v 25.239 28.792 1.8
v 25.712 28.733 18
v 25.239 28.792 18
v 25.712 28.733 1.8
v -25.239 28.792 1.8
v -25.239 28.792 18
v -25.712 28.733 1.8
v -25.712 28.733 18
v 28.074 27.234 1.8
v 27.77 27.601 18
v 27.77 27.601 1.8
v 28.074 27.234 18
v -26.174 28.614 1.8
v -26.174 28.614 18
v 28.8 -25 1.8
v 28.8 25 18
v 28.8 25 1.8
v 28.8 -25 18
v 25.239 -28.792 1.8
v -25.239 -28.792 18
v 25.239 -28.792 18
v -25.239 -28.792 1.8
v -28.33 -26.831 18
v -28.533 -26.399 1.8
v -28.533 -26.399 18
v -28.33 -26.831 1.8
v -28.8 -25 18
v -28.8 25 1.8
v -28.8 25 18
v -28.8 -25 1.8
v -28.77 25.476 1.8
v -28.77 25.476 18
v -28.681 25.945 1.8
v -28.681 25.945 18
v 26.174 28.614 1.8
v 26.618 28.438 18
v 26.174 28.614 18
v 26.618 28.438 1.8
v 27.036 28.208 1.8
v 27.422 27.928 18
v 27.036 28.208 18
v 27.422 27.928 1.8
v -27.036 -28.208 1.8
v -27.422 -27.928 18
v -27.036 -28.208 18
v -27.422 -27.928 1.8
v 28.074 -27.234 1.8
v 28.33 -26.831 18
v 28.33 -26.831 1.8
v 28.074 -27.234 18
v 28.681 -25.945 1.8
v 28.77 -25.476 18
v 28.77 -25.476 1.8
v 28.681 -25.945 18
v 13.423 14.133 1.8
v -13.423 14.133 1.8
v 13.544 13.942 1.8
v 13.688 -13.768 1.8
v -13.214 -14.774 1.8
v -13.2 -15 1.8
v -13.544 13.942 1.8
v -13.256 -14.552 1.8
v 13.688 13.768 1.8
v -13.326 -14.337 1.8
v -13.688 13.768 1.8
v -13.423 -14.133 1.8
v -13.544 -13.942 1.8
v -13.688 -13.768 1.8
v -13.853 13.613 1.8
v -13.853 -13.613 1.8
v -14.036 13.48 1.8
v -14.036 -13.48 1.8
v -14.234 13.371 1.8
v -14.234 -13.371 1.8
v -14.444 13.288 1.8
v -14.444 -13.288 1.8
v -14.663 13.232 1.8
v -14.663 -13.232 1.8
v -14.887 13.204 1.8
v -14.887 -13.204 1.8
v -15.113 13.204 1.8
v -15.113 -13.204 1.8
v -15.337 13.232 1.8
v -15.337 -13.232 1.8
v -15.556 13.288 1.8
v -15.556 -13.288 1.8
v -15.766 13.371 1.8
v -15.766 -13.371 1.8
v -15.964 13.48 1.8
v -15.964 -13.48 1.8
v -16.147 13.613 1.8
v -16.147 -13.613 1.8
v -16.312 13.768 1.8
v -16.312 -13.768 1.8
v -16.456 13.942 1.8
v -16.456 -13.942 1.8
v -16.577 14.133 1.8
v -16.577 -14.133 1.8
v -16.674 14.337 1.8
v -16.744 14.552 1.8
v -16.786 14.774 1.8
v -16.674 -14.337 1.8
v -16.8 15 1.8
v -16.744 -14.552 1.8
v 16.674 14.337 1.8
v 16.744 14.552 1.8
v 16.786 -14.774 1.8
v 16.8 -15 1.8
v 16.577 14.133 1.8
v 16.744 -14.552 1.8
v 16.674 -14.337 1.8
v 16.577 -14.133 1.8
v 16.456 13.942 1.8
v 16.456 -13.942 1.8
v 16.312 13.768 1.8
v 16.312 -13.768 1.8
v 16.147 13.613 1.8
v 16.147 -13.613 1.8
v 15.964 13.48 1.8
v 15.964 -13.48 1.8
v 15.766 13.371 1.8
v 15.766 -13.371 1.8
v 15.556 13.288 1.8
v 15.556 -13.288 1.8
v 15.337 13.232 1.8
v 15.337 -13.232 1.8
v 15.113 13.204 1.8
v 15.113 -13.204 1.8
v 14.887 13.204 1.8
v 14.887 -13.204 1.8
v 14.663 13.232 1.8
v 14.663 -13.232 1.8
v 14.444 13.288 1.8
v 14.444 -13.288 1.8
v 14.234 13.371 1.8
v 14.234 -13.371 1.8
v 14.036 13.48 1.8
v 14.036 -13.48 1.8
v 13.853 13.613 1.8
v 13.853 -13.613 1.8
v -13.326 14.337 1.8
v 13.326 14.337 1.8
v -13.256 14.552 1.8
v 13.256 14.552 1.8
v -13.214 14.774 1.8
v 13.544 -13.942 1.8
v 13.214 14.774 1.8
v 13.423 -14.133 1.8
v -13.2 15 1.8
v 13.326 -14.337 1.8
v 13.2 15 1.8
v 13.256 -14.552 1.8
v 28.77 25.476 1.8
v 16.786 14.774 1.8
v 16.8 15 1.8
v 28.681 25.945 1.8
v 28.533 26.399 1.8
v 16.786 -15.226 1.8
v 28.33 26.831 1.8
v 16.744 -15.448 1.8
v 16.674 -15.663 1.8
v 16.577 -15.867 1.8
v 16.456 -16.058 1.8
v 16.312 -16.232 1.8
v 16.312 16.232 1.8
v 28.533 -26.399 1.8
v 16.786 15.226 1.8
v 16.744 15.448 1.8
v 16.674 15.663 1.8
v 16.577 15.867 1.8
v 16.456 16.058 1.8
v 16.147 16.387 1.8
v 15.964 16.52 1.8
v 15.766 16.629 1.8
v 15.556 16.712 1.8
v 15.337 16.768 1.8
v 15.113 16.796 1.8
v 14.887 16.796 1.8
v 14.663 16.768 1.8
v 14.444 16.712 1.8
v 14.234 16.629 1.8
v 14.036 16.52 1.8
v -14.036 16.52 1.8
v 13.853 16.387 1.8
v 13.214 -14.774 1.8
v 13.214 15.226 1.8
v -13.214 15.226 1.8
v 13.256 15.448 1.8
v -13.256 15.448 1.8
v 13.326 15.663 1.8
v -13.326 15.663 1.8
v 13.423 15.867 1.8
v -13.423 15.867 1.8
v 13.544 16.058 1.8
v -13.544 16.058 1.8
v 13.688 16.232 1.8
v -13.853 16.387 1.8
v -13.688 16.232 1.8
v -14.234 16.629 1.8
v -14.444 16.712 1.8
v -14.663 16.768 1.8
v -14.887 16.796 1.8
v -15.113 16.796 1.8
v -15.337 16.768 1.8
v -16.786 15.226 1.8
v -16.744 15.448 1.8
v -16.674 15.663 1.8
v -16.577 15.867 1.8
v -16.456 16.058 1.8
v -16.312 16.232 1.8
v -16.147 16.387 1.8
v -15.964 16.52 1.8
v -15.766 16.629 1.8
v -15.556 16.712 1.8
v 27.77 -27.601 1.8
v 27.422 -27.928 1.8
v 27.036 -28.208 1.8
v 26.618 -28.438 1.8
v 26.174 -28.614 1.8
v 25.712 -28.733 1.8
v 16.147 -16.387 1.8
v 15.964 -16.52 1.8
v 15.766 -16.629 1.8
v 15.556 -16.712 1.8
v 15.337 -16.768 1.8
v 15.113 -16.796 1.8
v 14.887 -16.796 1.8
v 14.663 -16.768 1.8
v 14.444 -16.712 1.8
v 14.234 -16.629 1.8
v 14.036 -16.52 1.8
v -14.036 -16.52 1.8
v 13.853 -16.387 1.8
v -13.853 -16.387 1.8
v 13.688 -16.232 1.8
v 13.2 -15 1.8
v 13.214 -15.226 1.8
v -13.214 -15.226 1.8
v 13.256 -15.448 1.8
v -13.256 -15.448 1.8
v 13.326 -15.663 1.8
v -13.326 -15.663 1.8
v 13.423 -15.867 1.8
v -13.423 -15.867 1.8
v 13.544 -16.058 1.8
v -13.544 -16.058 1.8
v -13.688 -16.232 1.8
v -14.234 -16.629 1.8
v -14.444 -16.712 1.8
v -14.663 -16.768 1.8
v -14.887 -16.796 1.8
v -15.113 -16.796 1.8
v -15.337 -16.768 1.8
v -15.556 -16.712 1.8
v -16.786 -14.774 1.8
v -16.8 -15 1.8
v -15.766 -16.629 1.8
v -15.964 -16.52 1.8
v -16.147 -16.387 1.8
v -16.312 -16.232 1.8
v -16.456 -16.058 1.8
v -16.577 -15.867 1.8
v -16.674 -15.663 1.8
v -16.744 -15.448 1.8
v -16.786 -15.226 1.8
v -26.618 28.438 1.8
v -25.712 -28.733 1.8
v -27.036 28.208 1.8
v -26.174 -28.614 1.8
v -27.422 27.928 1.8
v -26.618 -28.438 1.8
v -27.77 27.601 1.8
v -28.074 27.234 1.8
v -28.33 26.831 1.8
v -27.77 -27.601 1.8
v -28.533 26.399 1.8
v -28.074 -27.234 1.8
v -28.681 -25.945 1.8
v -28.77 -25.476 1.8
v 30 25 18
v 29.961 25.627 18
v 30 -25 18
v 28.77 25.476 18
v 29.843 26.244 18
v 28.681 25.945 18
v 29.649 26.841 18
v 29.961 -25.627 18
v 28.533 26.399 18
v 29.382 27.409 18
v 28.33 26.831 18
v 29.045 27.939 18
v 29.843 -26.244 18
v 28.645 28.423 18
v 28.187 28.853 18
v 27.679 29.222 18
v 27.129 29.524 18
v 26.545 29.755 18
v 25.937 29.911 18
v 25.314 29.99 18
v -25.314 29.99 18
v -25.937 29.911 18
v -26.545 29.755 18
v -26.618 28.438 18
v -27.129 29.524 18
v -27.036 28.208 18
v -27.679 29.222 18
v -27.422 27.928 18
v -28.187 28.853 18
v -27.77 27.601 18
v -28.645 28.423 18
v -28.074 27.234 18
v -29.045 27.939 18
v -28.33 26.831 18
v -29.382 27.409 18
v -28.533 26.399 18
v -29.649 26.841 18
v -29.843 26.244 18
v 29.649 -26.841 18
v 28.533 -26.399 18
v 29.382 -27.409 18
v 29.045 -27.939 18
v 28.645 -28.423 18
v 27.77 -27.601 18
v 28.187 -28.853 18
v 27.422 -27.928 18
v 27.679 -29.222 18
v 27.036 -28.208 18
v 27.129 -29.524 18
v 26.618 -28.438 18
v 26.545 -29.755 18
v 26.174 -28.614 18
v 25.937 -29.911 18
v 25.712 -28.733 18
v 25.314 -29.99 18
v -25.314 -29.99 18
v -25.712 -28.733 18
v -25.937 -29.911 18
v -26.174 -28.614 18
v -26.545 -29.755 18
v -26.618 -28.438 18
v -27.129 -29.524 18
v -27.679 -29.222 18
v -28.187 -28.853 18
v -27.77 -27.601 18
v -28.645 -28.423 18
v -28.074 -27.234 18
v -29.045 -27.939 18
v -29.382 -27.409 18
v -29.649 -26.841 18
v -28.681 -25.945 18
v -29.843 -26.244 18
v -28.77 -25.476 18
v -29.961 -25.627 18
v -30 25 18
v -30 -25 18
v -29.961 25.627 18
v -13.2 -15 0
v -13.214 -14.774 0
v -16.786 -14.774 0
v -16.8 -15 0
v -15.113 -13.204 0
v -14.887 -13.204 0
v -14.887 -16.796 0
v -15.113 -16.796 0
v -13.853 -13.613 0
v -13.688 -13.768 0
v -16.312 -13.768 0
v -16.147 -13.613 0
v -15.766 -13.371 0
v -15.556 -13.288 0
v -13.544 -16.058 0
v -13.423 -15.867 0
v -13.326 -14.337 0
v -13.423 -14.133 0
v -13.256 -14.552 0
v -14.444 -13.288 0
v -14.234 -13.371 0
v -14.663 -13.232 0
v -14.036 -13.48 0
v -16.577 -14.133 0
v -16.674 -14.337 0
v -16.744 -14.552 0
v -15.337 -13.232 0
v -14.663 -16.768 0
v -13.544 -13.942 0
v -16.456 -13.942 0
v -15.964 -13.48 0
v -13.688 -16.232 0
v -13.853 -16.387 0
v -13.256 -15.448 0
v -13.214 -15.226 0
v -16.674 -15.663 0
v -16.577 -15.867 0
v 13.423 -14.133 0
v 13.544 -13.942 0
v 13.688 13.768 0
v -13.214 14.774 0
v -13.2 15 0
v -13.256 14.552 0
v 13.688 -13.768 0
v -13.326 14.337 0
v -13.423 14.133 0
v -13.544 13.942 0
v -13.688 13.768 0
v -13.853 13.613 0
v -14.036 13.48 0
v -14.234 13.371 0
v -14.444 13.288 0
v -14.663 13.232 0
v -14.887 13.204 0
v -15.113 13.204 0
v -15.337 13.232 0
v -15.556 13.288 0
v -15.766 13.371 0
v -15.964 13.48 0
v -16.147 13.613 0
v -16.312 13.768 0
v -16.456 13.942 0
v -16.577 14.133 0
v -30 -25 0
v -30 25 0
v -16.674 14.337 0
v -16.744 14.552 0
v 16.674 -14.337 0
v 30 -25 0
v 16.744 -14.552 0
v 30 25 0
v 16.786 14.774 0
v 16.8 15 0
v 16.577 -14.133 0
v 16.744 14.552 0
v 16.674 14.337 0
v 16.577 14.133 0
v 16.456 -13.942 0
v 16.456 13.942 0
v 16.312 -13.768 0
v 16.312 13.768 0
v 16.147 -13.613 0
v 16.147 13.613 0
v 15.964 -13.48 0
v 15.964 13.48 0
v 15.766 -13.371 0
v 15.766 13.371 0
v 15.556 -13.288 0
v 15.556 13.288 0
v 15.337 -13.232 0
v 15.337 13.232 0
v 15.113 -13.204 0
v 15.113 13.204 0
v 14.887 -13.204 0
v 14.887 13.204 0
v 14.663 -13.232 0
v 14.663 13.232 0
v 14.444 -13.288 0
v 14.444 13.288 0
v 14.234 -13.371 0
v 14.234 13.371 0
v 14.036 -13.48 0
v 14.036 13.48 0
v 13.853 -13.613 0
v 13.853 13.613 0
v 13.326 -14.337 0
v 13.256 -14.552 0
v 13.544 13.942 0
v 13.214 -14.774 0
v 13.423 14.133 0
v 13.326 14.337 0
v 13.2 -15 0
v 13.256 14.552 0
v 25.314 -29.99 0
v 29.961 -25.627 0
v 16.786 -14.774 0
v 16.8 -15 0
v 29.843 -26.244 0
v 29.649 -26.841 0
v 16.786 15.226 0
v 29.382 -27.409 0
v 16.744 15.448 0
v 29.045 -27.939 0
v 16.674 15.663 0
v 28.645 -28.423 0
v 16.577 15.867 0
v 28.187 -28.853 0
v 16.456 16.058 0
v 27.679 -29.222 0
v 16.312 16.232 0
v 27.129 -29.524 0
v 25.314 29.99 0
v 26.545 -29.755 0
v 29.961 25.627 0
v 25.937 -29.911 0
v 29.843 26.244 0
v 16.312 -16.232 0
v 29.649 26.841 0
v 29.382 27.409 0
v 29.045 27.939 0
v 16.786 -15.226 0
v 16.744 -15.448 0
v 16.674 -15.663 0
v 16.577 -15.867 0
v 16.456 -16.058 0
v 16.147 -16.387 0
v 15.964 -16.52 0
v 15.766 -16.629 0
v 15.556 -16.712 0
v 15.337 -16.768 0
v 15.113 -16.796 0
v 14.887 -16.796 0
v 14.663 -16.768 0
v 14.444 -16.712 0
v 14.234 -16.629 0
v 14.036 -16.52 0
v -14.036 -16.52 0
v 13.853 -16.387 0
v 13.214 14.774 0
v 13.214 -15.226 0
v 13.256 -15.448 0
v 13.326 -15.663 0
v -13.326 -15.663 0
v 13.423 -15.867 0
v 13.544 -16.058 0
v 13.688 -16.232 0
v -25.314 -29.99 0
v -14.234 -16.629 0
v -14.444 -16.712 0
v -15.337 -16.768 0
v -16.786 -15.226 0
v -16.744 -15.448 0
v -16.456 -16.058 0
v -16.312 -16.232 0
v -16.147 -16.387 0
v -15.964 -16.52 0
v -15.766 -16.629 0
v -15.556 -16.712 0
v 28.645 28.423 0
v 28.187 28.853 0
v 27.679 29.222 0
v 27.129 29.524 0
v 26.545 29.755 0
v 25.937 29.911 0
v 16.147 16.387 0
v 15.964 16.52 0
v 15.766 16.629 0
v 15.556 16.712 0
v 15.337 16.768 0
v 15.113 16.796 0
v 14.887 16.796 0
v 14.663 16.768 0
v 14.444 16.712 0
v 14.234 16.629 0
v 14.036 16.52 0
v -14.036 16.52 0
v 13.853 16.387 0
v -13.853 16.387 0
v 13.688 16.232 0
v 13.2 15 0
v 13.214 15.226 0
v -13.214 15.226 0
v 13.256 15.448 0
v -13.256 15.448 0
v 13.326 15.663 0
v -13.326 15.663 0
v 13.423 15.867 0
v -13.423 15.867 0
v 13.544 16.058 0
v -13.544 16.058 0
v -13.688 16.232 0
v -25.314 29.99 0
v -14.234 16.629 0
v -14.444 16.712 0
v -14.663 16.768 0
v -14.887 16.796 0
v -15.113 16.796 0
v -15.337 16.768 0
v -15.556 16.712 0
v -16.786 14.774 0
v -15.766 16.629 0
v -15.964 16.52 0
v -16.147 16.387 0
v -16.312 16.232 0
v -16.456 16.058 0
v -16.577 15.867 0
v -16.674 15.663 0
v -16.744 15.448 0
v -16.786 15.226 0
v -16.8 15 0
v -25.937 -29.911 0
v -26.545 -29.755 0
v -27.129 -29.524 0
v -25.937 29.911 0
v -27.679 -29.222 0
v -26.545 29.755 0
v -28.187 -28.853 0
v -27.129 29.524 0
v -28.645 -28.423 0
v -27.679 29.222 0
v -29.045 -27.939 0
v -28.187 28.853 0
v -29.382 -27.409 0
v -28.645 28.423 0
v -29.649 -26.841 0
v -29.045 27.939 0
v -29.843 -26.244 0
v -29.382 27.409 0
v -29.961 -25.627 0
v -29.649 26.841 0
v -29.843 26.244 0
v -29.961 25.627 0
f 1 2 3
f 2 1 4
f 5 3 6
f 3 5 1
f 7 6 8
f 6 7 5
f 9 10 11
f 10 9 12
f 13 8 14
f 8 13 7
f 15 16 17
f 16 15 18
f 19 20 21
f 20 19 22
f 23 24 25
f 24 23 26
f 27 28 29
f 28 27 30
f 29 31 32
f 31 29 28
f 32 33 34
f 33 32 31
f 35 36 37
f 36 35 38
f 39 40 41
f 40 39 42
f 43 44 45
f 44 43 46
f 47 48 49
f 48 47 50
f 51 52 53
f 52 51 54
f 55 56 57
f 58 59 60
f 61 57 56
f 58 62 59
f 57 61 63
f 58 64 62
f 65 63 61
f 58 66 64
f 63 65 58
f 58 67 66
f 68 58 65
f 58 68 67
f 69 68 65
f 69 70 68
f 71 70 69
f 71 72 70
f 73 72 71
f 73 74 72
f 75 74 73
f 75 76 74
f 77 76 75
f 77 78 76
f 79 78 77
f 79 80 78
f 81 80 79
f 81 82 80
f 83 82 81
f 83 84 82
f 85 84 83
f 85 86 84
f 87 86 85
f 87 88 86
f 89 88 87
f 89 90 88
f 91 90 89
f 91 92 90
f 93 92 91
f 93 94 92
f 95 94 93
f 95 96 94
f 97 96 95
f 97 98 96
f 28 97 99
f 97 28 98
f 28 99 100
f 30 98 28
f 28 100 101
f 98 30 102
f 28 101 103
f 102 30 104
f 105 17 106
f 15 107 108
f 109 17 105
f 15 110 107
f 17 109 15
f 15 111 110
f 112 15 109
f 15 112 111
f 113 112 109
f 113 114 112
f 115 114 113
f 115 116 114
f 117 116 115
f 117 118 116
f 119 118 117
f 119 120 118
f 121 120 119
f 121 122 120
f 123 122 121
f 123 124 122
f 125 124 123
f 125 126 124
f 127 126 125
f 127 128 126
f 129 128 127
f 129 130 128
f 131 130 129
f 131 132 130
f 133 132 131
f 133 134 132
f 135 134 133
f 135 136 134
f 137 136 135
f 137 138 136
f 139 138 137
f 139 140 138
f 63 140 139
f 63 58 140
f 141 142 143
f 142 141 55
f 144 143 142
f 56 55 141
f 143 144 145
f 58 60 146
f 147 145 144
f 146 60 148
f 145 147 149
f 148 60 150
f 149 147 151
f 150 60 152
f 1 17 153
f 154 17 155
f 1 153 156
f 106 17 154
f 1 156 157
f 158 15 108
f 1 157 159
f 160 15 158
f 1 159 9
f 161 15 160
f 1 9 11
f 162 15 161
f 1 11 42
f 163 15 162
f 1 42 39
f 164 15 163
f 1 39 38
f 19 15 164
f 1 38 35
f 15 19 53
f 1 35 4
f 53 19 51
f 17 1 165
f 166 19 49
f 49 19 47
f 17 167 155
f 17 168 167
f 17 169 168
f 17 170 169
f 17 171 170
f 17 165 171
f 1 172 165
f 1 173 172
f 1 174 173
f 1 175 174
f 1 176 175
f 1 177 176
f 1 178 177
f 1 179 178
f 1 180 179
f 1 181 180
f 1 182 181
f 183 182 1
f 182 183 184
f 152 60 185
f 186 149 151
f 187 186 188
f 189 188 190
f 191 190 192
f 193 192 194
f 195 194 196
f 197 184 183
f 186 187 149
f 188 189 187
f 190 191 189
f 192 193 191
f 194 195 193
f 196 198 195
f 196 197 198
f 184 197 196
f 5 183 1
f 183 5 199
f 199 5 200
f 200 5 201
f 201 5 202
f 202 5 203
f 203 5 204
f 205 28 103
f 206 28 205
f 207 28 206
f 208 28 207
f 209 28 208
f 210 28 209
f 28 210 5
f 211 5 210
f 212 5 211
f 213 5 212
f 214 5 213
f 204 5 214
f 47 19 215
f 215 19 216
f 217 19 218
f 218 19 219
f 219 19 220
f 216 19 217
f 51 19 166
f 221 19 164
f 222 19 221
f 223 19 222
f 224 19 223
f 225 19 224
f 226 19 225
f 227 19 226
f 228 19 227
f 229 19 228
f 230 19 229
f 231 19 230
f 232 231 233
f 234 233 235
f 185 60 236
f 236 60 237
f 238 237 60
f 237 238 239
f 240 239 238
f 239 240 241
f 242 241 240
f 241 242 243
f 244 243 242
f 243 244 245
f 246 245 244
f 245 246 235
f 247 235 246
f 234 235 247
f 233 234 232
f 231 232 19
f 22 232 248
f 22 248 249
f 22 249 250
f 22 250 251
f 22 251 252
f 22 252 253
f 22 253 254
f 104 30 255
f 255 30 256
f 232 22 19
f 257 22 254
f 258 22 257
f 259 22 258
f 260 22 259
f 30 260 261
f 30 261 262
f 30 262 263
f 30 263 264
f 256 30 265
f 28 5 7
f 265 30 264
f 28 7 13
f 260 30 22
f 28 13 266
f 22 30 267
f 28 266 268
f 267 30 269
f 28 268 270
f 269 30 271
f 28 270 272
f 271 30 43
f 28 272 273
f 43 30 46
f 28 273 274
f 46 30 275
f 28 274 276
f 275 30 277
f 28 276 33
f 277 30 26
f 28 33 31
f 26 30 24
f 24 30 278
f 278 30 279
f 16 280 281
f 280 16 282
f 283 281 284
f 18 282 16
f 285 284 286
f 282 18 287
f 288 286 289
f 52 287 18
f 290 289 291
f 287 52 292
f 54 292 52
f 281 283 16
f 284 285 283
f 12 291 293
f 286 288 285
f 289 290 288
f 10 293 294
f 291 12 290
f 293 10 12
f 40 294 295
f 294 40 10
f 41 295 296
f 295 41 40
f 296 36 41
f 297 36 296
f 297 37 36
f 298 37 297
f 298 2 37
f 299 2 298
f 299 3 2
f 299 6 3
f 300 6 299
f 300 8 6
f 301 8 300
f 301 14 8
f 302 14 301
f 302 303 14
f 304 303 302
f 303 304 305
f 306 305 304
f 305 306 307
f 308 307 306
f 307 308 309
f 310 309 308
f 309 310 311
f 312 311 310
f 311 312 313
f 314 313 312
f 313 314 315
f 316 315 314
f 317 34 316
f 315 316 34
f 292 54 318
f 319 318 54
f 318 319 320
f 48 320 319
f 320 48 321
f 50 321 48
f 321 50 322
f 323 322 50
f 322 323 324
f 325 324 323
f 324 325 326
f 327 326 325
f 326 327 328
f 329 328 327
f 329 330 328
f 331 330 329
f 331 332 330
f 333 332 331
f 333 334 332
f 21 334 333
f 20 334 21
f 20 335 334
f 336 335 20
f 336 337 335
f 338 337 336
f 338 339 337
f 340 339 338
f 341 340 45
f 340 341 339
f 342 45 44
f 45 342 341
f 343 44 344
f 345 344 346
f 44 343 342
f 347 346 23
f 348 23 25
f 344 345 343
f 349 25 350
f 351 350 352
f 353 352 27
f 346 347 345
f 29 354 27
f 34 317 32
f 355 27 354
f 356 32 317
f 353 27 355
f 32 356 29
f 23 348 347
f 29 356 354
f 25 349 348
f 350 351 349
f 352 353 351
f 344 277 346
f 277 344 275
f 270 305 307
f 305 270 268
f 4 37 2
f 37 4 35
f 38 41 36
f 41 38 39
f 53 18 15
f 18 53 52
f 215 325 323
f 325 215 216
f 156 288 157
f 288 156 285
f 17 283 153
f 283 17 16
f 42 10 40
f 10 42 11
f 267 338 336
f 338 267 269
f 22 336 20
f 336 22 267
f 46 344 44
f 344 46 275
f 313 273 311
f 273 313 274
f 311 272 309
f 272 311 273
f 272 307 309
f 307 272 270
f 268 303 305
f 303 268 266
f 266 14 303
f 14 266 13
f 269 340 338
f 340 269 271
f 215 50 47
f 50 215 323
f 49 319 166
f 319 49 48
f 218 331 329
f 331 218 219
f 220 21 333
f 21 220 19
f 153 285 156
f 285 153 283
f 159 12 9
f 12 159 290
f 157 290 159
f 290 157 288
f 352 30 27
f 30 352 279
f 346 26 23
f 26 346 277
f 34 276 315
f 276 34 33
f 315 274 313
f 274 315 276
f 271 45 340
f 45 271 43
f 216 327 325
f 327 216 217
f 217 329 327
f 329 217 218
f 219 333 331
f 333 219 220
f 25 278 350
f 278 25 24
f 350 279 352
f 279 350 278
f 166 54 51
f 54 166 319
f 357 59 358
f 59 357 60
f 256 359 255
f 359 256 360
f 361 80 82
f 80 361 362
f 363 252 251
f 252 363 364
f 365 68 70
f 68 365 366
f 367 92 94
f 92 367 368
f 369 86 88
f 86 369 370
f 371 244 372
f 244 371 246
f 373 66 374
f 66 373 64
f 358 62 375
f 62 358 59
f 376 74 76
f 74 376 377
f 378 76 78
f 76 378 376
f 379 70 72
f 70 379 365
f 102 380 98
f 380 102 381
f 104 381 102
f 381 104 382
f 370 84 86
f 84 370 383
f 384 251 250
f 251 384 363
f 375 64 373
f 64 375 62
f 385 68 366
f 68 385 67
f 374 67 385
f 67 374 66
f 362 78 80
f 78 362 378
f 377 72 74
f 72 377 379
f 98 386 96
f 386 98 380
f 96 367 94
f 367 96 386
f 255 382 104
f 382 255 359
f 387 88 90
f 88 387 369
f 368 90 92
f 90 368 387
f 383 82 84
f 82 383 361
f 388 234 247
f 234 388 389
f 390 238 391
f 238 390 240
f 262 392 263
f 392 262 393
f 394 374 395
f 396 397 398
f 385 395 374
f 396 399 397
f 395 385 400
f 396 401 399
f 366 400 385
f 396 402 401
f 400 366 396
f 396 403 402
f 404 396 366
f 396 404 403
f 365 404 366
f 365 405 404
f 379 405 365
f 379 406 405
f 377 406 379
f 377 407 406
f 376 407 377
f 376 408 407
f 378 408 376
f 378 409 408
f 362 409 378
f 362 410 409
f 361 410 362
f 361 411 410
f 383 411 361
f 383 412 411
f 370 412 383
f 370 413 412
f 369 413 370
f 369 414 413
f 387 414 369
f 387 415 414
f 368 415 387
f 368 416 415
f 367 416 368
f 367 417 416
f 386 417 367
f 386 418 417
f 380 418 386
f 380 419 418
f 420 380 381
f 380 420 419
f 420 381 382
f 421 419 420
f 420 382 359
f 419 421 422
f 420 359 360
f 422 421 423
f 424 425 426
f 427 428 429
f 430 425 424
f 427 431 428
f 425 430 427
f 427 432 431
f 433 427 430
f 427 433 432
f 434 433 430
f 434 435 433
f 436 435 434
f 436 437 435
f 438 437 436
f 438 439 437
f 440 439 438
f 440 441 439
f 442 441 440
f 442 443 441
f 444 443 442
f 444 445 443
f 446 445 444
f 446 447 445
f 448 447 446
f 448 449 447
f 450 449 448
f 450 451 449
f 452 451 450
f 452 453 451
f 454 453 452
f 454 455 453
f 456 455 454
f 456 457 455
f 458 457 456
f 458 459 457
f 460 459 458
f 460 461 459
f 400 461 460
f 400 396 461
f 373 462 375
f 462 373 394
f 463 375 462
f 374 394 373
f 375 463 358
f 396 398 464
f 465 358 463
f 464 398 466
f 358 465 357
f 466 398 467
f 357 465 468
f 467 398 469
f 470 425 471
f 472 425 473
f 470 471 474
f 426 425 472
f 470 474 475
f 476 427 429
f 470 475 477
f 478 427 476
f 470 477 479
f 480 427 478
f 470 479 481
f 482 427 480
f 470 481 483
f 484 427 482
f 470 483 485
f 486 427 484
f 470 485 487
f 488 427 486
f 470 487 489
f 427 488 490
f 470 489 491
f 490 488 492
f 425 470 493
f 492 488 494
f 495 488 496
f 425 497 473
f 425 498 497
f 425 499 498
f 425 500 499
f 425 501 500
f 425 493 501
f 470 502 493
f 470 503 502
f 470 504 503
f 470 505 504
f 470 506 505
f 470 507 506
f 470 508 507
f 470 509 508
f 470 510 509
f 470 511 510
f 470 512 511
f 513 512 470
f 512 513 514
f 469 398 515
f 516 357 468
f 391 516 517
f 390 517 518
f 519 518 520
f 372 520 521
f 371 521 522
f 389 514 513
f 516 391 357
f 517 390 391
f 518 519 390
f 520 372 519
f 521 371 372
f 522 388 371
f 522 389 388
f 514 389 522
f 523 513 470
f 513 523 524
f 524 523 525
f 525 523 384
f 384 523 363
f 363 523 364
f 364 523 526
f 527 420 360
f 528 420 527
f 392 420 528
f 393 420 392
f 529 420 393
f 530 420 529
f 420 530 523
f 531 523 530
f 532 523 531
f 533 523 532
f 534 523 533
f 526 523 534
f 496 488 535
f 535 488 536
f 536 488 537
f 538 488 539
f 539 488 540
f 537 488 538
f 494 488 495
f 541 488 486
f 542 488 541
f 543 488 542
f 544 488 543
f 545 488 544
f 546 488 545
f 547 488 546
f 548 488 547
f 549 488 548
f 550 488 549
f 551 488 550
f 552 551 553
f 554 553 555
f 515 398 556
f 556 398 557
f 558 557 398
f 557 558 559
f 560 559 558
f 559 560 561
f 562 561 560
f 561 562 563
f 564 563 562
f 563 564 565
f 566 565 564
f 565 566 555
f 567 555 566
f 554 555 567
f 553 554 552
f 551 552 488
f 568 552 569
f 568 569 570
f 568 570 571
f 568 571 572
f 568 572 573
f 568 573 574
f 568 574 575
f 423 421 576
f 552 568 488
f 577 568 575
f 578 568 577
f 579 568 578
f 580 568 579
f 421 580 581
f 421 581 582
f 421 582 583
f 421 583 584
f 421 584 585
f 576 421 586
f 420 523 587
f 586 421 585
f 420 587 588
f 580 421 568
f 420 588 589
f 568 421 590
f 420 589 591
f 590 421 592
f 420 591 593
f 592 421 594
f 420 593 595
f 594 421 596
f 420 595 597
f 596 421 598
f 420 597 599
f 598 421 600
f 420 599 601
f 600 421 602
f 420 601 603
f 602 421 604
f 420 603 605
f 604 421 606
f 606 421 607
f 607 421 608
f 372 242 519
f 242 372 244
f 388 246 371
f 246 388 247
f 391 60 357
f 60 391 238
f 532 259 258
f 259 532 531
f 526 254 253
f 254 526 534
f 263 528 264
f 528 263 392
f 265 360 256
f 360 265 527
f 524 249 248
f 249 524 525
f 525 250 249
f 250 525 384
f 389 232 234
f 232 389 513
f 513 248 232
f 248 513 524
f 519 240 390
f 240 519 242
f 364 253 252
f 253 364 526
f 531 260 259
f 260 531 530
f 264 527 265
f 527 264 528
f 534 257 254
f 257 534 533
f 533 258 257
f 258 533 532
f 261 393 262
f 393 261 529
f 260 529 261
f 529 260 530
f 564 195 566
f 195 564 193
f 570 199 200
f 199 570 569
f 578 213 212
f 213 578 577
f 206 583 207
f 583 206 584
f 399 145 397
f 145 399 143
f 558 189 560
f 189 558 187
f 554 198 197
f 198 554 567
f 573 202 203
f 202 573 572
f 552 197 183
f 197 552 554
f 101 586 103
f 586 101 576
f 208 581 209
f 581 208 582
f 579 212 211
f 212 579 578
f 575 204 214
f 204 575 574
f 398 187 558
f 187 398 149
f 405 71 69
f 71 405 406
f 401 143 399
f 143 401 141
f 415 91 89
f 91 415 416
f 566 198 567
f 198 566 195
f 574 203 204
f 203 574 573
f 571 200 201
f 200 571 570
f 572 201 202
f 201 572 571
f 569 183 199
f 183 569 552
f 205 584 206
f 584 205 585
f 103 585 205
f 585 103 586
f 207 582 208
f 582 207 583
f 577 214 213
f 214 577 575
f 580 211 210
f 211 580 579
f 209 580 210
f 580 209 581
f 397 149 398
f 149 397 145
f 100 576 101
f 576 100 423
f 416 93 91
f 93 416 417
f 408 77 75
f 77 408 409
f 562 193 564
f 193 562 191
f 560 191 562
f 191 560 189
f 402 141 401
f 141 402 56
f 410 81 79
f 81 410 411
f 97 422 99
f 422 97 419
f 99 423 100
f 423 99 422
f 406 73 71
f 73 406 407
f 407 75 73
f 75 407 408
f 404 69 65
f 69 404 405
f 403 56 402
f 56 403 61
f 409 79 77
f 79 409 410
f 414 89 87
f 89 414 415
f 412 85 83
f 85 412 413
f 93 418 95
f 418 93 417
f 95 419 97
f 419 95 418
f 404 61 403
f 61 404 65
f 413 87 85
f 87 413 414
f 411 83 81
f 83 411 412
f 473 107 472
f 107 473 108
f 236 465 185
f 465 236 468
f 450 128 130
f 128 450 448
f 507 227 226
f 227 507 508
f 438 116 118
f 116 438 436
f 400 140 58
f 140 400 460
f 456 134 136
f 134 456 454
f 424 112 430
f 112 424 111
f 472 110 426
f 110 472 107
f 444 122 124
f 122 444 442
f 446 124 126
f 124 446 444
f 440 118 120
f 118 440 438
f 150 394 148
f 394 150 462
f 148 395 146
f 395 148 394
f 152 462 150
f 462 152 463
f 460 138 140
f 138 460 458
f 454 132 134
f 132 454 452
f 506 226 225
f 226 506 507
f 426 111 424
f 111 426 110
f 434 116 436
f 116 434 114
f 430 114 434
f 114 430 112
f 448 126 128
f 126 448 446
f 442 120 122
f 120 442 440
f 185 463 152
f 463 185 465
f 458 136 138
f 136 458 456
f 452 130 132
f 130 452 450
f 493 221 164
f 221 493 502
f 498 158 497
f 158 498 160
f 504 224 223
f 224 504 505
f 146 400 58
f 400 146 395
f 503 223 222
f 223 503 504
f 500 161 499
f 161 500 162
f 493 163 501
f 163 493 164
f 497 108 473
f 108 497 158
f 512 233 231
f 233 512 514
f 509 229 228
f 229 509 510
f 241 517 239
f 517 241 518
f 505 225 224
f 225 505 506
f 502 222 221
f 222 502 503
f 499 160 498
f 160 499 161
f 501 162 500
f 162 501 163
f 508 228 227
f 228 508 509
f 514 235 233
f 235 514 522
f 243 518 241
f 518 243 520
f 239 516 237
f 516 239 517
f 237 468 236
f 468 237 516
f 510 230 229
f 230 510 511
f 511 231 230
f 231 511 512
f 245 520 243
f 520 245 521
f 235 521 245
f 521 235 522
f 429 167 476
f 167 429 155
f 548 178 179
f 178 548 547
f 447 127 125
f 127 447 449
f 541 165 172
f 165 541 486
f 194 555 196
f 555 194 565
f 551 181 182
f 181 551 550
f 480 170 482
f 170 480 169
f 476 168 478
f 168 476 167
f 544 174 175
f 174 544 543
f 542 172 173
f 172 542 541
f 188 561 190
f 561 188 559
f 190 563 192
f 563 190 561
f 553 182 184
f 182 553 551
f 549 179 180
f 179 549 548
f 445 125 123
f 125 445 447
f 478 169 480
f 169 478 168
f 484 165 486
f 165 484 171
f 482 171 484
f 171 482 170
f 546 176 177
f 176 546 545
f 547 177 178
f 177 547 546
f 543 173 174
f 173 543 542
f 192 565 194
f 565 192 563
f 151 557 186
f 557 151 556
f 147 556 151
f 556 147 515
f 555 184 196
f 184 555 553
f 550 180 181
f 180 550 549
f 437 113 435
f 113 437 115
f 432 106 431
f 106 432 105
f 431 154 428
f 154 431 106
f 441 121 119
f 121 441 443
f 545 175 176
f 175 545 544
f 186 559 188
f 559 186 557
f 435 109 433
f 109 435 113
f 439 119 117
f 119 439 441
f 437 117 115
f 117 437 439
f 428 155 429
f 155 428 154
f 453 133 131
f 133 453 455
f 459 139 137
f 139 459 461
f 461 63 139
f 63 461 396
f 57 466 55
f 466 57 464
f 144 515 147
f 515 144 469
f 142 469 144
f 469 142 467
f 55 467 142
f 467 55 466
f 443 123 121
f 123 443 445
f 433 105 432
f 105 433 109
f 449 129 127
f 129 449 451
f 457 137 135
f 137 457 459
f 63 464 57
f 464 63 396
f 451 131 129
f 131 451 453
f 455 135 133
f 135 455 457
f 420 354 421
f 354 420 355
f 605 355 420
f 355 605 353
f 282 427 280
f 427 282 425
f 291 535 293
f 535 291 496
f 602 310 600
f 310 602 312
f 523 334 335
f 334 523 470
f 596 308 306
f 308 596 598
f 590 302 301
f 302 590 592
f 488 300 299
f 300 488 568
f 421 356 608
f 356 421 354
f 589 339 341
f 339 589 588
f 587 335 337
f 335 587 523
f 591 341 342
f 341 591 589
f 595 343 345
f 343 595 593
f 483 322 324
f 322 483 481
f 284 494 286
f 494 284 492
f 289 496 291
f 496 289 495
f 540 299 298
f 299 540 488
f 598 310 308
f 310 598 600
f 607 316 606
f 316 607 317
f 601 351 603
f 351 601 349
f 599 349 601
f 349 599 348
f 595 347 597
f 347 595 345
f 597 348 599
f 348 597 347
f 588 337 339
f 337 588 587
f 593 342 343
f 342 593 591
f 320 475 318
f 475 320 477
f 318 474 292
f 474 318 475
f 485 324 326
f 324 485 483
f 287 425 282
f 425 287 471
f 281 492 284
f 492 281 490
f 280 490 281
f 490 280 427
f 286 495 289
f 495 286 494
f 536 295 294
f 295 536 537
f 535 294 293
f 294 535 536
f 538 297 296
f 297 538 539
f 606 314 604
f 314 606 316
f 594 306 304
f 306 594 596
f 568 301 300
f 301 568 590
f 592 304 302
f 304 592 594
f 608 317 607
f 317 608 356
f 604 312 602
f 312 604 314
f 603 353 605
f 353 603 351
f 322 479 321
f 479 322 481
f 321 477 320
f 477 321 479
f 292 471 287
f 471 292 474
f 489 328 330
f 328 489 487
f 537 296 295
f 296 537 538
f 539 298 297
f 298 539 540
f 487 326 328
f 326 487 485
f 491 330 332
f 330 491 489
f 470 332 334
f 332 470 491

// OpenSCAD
$fn = 50;


difference() {
	union() {
		hull() {
			translate(v = [-25.0000000000, 25.0000000000, 0]) {
				cylinder(h = 18, r = 5);
			}
			translate(v = [25.0000000000, 25.0000000000, 0]) {
				cylinder(h = 18, r = 5);
			}
			translate(v = [-25.0000000000, -25.0000000000, 0]) {
				cylinder(h = 18, r = 5);
			}
			translate(v = [25.0000000000, -25.0000000000, 0]) {
				cylinder(h = 18, r = 5);
			}
		}
	}
	union() {
		translate(v = [0, 0, 1.8000000000]) {
			hull() {
				translate(v = [-25.0000000000, 25.0000000000, 0]) {
					cylinder(h = 16.2000000000, r = 3.8000000000);
				}
				translate(v = [25.0000000000, 25.0000000000, 0]) {
					cylinder(h = 16.2000000000, r = 3.8000000000);
				}
				translate(v = [-25.0000000000, -25.0000000000, 0]) {
					cylinder(h = 16.2000000000, r = 3.8000000000);
				}
				translate(v = [25.0000000000, -25.0000000000, 0]) {
					cylinder(h = 16.2000000000, r = 3.8000000000);
				}
			}
		}
		#translate(v = [-15.0000000000, -15.0000000000, 0]) {
			cylinder(h = 1.8000000000, r = 1.8000000000);
		}
		#translate(v = [-15.0000000000, 15.0000000000, 0]) {
			cylinder(h = 1.8000000000, r = 1.8000000000);
		}
		#translate(v = [15.0000000000, -15.0000000000, 0]) {
			cylinder(h = 1.8000000000, r = 1.8000000000);
		}
		#translate(v = [15.0000000000, 15.0000000000, 0]) {
			cylinder(h = 1.8000000000, r = 1.8000000000);
		}
	}
}
